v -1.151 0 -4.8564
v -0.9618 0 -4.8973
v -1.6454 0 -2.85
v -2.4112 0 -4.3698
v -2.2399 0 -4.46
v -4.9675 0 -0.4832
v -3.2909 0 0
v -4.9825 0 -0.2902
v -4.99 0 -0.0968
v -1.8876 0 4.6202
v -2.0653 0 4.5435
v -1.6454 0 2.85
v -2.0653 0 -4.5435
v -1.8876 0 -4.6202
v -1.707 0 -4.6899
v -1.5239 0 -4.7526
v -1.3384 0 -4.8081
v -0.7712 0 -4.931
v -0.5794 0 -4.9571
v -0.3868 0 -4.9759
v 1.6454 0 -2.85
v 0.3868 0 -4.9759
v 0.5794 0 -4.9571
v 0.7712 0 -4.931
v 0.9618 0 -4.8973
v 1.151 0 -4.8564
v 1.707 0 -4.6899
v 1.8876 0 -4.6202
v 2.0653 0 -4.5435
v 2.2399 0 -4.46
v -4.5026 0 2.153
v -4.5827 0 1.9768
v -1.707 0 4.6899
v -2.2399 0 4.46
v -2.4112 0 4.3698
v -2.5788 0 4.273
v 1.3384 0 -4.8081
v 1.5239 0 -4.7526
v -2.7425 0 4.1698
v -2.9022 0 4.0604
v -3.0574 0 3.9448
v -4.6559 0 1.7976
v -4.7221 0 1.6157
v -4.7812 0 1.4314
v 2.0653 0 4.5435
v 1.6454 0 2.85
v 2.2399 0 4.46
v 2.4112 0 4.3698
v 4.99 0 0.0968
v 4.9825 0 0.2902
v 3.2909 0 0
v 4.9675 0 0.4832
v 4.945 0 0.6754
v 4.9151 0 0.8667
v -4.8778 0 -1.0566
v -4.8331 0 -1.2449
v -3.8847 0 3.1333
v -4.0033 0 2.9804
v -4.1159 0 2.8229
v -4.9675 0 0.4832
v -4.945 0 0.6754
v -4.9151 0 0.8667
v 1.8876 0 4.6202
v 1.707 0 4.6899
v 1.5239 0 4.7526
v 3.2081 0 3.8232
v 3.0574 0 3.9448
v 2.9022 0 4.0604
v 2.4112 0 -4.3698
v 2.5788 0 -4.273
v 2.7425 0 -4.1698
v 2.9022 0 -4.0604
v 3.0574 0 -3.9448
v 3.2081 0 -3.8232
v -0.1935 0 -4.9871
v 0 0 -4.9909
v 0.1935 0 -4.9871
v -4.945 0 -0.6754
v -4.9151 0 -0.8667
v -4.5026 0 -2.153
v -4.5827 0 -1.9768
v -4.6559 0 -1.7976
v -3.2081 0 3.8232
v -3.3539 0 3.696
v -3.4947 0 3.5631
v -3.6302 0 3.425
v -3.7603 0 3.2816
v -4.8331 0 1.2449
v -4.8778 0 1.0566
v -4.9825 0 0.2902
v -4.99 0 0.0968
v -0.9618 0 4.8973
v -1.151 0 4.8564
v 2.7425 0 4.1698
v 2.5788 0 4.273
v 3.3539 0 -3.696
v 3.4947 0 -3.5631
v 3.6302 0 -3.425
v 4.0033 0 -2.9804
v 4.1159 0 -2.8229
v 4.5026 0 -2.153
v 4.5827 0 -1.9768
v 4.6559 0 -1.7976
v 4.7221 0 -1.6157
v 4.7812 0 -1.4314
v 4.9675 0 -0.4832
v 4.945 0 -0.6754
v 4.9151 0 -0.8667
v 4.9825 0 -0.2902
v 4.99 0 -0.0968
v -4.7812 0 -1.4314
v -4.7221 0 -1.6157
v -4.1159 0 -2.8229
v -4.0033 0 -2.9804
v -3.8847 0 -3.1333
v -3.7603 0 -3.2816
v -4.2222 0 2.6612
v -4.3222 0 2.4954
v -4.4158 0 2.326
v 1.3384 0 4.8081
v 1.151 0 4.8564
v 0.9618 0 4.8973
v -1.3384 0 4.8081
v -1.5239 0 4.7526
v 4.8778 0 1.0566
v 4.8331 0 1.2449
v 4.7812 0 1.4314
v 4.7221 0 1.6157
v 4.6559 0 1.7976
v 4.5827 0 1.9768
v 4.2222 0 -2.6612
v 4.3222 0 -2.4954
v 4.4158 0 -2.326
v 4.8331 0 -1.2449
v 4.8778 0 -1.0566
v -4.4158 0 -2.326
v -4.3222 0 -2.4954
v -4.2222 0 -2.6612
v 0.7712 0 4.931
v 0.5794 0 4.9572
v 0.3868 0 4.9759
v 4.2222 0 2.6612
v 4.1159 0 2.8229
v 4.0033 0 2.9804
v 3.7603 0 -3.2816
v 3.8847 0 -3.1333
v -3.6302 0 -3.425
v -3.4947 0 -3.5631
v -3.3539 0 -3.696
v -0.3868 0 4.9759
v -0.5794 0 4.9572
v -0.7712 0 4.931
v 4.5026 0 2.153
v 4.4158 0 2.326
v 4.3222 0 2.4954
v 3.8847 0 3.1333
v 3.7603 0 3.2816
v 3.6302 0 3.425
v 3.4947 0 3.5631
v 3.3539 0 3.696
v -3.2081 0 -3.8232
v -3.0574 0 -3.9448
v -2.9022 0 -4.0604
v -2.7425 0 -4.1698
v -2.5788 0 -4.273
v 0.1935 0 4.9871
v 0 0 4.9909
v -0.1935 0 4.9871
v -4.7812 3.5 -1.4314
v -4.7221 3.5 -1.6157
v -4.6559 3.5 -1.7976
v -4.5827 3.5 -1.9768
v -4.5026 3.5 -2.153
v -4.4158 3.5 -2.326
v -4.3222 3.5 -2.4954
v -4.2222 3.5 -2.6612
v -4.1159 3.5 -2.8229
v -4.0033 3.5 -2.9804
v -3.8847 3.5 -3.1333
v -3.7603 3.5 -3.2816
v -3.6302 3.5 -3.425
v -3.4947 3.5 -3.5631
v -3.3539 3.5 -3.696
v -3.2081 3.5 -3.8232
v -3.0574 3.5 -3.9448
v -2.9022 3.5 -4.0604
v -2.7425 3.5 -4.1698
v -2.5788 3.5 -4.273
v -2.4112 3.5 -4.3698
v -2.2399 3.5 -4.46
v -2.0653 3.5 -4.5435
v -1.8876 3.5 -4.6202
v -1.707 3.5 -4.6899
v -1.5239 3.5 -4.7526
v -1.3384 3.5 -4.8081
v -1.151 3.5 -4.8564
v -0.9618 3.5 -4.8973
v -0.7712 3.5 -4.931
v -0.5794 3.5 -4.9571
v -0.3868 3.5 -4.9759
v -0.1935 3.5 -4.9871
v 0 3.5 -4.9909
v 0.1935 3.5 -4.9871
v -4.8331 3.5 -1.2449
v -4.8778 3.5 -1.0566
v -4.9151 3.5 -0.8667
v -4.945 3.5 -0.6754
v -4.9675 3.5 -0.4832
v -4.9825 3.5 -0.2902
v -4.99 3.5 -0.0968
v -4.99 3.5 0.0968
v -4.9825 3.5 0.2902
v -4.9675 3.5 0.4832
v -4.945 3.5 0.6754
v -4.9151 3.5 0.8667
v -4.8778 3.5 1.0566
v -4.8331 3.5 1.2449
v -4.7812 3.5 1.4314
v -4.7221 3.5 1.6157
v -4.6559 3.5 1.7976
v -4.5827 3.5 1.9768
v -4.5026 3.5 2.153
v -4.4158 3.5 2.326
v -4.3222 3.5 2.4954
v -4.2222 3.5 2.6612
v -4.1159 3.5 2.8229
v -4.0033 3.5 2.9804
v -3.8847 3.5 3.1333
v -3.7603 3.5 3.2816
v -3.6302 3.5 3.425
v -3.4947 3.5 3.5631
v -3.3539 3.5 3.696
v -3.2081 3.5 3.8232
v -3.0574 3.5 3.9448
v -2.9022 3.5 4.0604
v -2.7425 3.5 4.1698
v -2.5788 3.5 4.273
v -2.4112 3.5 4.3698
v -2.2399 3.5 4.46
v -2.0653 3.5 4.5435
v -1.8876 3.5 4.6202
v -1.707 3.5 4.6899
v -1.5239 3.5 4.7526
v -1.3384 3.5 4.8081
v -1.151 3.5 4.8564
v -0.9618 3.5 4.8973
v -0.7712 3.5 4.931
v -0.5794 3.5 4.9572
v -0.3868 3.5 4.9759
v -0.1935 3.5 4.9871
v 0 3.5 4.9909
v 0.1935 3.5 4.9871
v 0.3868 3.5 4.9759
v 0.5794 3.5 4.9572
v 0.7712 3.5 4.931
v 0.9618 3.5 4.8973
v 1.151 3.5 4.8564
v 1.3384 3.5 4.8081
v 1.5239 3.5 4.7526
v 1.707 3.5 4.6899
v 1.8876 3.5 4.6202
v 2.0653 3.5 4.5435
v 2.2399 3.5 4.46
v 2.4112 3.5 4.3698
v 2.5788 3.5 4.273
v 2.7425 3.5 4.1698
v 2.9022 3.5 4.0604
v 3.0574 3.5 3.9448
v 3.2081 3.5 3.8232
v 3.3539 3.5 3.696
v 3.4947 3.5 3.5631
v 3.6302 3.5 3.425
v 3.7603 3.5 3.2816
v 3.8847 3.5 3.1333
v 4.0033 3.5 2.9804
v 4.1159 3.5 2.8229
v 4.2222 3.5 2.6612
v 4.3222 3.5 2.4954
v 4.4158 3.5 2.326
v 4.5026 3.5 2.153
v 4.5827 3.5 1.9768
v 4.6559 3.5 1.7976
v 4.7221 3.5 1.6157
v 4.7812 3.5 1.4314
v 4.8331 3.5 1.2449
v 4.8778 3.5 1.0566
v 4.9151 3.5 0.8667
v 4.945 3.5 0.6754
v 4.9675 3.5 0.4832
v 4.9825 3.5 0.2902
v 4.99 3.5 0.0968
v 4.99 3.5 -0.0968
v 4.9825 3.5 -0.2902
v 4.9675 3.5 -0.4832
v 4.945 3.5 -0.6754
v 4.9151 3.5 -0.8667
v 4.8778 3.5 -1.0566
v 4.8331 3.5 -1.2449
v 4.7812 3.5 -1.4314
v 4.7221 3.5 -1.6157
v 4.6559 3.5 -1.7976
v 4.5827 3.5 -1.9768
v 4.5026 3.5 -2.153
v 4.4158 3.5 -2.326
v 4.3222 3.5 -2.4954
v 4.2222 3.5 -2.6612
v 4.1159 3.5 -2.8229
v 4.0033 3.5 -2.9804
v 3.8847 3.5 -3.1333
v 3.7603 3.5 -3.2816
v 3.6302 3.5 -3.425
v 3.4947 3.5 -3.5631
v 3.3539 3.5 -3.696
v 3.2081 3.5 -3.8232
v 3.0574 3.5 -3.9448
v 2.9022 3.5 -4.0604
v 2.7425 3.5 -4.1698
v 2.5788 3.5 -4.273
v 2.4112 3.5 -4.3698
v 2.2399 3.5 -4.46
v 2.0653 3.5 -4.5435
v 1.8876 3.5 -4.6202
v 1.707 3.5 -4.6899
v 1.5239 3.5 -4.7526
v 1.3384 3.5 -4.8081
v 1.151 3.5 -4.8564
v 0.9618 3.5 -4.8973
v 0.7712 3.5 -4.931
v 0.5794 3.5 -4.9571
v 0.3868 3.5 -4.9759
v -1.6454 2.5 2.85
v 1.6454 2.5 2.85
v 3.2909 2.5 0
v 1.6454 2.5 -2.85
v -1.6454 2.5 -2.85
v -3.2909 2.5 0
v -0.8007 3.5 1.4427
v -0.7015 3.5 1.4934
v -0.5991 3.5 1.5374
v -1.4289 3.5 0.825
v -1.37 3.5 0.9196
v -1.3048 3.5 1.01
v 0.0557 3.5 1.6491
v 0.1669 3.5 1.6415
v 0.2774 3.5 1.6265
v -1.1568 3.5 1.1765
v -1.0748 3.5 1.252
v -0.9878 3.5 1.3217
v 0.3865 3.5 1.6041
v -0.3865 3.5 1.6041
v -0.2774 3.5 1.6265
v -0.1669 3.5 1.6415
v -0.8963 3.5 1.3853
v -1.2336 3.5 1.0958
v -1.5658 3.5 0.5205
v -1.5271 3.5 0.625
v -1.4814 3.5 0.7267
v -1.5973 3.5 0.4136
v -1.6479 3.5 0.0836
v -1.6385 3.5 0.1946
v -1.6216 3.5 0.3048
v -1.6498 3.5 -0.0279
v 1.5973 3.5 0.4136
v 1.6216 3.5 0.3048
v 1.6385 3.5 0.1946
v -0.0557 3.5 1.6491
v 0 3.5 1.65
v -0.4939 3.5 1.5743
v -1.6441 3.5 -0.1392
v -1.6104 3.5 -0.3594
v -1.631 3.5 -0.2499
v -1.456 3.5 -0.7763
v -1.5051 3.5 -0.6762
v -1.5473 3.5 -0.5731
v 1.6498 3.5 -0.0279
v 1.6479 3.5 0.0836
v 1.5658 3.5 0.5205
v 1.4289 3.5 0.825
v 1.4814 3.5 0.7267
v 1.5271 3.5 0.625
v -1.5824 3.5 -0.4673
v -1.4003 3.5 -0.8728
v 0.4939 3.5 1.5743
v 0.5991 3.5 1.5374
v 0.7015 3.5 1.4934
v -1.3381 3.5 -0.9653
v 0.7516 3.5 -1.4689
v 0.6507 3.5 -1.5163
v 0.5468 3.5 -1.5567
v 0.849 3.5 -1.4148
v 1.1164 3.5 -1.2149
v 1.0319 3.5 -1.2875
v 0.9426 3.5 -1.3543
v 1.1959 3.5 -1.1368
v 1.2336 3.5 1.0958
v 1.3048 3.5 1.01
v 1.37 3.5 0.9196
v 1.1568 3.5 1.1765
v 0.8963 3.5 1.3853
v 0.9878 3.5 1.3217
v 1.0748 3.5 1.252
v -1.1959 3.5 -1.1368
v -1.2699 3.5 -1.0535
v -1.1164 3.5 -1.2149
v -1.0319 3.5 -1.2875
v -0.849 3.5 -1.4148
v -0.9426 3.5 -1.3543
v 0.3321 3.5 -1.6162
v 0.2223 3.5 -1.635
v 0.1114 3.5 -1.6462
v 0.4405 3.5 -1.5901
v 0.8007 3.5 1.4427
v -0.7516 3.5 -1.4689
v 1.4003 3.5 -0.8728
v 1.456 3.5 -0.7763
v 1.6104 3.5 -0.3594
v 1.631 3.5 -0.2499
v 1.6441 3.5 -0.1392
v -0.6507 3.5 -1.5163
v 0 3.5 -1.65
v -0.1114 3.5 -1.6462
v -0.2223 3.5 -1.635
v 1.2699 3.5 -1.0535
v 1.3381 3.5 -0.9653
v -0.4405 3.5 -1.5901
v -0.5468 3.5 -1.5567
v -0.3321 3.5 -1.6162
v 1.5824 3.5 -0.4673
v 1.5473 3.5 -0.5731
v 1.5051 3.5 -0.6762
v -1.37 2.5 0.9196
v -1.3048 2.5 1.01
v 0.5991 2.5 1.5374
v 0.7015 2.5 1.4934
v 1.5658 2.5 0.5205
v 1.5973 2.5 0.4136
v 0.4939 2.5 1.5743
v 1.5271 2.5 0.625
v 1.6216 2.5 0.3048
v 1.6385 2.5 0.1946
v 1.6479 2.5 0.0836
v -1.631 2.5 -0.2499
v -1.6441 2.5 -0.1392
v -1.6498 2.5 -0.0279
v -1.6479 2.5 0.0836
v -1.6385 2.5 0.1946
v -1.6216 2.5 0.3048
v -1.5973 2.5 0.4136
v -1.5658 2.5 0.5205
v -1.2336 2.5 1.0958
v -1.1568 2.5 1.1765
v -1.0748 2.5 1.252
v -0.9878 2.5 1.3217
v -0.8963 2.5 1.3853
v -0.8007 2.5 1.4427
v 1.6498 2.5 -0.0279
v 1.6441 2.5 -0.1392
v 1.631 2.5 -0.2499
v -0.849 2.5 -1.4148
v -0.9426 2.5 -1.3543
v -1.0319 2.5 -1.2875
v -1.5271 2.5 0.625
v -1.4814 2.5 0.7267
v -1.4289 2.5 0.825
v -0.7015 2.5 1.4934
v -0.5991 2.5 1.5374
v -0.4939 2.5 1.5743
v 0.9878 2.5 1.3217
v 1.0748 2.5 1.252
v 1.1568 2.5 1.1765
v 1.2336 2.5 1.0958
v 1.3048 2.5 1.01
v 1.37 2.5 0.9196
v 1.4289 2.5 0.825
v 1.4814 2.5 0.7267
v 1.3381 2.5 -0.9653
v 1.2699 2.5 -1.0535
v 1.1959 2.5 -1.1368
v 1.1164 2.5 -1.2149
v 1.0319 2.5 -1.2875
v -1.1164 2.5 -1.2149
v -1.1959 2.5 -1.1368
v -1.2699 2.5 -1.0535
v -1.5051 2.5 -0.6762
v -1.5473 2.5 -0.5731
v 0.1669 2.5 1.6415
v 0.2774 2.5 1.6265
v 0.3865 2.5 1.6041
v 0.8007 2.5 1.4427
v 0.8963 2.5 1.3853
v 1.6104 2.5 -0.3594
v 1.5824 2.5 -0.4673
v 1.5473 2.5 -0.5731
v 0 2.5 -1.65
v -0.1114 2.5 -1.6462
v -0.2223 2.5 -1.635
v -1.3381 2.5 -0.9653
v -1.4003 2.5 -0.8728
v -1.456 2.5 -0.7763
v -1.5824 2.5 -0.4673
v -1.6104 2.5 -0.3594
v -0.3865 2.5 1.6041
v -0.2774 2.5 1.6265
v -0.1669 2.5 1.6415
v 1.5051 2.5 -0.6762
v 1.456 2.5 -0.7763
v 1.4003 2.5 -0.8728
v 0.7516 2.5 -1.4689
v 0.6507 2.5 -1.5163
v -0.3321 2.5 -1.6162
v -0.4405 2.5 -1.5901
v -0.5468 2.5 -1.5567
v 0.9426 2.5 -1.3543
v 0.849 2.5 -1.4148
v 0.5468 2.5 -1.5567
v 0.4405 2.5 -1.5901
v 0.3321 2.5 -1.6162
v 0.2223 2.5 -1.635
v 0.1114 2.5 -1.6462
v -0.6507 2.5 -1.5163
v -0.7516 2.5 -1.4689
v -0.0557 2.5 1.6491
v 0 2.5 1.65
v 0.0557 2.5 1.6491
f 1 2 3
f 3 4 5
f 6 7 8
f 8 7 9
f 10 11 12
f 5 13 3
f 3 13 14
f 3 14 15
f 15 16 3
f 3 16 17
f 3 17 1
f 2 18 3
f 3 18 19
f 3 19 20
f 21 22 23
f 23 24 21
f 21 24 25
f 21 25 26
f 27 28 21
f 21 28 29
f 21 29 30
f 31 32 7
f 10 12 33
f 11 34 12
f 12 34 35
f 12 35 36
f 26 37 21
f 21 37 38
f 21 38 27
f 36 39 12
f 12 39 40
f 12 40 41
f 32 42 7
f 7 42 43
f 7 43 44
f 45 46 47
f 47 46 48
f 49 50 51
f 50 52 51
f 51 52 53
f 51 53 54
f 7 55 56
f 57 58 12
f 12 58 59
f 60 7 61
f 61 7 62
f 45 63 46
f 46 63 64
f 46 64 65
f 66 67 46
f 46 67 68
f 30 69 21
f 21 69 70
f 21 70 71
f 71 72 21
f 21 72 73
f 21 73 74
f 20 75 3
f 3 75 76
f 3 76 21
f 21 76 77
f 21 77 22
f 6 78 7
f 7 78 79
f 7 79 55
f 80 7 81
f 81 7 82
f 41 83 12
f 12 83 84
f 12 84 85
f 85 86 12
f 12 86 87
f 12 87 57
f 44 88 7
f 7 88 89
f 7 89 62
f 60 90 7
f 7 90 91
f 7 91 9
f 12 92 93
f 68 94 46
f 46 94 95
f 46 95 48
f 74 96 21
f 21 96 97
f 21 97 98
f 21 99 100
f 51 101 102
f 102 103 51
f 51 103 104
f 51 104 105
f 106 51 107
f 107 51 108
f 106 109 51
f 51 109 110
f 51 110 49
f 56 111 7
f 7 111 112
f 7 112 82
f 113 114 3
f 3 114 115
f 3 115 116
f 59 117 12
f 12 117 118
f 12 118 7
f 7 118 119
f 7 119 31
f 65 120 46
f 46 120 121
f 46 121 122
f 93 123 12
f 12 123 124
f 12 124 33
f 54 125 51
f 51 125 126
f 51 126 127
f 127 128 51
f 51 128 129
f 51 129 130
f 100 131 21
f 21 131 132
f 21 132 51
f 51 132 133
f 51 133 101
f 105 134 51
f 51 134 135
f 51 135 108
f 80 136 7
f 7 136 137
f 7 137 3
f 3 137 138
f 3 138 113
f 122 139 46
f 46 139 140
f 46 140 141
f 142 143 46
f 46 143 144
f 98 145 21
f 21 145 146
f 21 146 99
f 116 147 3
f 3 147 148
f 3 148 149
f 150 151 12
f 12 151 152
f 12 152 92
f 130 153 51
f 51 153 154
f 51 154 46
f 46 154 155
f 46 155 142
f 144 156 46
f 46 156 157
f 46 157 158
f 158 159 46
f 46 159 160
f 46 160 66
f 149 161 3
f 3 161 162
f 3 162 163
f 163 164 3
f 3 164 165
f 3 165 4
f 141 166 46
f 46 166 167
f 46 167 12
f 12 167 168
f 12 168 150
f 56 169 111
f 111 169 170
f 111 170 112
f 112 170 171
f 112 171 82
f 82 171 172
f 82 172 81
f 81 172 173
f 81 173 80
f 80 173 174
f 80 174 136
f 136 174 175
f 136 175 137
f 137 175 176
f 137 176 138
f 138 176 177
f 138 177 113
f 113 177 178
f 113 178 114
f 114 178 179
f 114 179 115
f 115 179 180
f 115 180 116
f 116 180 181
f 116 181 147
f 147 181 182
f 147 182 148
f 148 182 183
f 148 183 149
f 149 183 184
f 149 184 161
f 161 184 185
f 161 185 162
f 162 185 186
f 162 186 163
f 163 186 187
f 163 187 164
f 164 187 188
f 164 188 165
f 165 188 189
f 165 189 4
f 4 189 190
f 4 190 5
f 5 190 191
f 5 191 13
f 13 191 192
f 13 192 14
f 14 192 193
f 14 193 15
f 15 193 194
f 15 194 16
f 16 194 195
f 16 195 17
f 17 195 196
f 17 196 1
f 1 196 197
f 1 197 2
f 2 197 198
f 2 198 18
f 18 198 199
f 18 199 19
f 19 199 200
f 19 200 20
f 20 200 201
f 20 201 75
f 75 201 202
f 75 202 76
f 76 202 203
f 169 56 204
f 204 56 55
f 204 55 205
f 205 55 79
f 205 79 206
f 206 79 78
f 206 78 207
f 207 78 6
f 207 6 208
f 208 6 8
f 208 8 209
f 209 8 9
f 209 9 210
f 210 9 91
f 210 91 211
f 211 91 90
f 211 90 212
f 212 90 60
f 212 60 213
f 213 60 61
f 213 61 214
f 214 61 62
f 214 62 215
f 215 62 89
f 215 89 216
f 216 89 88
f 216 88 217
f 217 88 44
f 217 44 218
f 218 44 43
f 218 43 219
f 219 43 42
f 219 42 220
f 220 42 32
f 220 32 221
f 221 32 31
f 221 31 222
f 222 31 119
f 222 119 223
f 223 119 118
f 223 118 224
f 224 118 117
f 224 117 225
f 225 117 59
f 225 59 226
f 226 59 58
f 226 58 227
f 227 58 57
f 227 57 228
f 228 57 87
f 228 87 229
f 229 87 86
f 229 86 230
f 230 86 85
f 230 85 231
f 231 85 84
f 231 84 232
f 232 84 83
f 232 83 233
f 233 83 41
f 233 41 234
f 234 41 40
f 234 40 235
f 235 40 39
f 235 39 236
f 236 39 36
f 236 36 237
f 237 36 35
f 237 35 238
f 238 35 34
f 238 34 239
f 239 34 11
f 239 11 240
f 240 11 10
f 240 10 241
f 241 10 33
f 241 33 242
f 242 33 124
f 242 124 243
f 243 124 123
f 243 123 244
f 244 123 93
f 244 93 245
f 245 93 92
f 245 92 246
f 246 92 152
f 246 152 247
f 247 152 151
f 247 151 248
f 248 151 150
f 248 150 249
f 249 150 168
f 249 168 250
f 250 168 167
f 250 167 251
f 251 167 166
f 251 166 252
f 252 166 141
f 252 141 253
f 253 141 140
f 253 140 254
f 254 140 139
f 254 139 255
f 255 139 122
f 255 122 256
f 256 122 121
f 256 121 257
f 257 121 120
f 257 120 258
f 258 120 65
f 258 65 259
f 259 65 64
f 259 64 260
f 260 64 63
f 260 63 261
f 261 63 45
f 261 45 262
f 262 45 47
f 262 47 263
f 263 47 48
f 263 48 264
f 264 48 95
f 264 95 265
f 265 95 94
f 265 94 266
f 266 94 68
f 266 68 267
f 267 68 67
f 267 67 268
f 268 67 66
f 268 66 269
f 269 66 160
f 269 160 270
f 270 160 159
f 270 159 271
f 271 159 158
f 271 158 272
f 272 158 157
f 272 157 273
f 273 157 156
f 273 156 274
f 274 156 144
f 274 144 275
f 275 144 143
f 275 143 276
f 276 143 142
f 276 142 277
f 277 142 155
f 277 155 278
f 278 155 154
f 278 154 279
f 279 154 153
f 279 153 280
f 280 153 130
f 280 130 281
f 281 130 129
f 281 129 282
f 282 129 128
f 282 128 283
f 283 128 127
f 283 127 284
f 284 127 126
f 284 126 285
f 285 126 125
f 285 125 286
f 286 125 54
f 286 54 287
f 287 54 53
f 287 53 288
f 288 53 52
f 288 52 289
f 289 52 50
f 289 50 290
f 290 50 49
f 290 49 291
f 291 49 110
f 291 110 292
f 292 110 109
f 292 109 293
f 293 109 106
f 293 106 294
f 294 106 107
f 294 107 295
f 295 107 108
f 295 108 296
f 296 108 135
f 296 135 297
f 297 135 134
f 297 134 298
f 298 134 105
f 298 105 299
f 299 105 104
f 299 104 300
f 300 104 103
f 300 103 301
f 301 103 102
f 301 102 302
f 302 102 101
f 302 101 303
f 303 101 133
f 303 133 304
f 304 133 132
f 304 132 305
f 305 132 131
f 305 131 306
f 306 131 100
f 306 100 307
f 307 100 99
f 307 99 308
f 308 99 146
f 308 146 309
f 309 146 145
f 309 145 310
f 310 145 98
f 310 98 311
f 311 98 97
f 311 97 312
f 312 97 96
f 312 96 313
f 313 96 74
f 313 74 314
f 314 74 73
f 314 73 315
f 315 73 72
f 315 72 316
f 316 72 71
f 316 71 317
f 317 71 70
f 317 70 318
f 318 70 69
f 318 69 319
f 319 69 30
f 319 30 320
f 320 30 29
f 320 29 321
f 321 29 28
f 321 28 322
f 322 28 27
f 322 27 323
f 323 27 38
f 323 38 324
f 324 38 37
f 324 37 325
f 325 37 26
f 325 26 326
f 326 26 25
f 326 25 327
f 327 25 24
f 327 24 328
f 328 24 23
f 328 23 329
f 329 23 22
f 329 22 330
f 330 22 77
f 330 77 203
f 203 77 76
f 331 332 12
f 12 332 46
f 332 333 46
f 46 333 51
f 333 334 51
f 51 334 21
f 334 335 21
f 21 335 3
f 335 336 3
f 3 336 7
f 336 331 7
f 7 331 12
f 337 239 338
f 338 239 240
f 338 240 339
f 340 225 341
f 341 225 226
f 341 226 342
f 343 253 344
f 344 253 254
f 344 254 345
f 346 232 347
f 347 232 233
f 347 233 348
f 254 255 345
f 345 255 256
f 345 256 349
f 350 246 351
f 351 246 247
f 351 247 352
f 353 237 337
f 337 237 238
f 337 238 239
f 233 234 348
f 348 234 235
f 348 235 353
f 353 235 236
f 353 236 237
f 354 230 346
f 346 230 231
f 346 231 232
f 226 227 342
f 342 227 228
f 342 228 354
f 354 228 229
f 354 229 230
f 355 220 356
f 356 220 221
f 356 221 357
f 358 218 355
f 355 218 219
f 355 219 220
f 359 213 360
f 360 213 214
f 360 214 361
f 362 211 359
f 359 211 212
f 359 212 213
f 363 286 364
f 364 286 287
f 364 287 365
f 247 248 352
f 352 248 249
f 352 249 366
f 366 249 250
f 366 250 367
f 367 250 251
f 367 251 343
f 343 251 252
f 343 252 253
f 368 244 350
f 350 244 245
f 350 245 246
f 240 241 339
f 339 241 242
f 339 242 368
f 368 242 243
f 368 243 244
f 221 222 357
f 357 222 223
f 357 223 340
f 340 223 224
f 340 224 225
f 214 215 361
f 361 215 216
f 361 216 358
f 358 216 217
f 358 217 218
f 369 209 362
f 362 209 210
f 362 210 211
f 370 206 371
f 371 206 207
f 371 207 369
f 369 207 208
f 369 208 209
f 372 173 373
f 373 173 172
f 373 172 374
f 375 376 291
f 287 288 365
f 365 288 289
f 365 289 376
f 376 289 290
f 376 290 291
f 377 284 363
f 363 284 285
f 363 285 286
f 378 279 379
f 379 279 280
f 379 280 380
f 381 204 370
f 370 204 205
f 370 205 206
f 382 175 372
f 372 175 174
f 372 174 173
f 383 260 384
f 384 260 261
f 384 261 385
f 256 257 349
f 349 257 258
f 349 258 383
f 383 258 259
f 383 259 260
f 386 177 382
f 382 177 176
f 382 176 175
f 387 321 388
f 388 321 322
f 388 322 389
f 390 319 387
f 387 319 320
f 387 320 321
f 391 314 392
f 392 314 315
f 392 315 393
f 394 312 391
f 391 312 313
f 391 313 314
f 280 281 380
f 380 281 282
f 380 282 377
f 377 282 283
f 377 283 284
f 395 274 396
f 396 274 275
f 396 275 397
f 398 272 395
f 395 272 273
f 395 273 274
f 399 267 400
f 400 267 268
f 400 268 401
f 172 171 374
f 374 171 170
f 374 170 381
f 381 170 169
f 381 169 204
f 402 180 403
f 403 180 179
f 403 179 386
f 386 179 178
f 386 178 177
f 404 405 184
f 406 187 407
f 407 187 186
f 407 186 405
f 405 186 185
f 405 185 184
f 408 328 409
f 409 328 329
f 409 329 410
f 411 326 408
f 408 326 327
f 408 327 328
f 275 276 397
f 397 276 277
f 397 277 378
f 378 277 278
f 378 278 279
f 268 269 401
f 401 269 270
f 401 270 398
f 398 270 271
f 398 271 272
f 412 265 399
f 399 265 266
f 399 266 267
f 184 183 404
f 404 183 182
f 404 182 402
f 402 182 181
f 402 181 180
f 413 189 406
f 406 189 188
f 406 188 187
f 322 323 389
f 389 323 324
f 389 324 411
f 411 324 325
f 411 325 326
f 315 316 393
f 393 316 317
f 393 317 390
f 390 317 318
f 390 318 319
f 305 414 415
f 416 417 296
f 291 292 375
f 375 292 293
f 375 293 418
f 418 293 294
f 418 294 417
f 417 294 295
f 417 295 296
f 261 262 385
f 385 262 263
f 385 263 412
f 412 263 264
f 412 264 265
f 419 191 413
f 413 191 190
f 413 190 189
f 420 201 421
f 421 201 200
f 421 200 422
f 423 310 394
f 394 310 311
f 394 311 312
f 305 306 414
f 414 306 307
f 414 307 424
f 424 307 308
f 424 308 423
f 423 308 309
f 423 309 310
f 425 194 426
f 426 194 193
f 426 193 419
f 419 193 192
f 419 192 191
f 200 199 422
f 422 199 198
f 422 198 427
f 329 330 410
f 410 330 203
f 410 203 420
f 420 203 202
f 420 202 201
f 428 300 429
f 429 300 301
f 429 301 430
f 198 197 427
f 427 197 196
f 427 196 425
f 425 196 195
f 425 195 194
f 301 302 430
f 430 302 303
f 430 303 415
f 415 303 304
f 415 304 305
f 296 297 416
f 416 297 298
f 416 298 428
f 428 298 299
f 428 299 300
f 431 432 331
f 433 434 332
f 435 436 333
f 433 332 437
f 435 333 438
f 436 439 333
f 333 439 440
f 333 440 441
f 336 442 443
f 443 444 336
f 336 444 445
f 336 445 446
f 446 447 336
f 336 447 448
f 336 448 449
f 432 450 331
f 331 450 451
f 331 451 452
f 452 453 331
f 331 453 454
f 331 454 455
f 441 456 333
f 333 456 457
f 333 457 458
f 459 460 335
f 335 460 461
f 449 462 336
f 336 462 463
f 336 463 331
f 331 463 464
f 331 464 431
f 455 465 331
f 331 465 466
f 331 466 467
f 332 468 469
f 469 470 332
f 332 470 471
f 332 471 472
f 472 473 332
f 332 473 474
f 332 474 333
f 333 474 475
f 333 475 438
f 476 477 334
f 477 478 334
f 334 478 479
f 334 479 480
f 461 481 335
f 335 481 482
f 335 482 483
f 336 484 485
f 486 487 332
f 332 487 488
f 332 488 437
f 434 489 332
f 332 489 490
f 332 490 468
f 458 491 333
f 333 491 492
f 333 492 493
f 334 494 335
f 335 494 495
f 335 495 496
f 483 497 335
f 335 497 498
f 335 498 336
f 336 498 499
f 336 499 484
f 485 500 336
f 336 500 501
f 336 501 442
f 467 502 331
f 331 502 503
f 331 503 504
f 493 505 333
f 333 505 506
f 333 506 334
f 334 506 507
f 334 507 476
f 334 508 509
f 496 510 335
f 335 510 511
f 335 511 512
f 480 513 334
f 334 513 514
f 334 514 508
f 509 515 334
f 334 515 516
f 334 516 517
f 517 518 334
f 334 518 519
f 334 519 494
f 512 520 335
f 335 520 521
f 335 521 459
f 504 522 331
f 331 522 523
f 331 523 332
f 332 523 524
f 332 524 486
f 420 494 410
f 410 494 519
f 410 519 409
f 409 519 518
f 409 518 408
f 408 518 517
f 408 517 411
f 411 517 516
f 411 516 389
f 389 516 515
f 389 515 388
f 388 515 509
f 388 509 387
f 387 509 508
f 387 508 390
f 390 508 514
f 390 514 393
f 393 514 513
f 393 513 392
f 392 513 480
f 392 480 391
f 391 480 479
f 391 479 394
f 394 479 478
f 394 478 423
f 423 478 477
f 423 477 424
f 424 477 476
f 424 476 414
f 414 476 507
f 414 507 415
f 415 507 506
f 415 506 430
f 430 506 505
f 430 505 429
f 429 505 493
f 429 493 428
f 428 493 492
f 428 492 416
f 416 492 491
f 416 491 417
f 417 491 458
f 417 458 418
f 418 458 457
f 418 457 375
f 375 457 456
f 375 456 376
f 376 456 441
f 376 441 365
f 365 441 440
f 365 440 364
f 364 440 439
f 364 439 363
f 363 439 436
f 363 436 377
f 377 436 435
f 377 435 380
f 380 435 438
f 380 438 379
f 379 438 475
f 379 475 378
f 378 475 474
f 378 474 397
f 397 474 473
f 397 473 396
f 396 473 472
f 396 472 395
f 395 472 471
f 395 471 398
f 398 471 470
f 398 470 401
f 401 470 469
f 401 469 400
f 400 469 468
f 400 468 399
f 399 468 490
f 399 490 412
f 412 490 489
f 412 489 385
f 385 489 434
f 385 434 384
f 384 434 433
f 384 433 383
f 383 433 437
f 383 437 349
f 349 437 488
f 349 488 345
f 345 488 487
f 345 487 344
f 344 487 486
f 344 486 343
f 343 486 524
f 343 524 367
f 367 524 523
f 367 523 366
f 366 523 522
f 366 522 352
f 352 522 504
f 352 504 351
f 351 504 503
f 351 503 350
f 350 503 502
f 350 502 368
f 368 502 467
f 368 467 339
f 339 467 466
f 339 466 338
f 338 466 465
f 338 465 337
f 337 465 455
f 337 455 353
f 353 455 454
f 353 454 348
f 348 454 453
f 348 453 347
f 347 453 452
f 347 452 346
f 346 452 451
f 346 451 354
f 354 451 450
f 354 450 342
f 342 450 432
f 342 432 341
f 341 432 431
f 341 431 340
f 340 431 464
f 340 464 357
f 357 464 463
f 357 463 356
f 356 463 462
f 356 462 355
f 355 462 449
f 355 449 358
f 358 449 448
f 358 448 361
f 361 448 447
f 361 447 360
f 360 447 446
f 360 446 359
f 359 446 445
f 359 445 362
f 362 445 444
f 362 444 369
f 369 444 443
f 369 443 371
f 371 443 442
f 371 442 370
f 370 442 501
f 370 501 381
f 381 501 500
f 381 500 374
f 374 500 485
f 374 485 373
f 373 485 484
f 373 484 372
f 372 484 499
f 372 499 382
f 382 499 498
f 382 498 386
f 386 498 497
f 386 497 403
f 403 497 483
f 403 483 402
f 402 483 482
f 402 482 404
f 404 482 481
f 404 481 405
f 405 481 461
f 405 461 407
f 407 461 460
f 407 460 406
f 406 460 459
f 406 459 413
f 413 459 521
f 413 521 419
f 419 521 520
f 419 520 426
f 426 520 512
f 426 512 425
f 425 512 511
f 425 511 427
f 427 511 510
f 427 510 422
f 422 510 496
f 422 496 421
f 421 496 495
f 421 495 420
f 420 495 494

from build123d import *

# Parameters (mm, degrees)
SKETCH_1_R      = 4.990896534
EXTRUDE_1_DEPTH = 2.5
SKETCH_2_R      = 4.990896534
SKETCH_2_R_2    = 1.65
EXTRUDE_2_DEPTH = 1


with BuildPart() as part:
    # 草图1 → 凸台-拉伸1 (new body)
    with BuildSketch(Plane(origin=(0, 0, 0), x_dir=(1, 0, 0), z_dir=(0, 1, 0))):
        with Locations(Location((0, 0, 0), (0, 0, 270))):
            Circle(SKETCH_1_R)
        Polygon((1.645448267, -2.85), (3.290896534, 0), (1.645448267, 2.85), (-1.645448267, 2.85), (-3.290896534, 0), (-1.645448267, -2.85), align=None, mode=Mode.SUBTRACT)
    extrude(amount=EXTRUDE_1_DEPTH)

    # 草图2 → 凸台-拉伸2 (add)
    with BuildSketch(Plane(origin=(0, 2.5, 0), x_dir=(1, 0, 0), z_dir=(0, 1, 0))):
        with Locations(Location((0, 0, 0), (0, 0, 270))):
            Circle(SKETCH_2_R)
        with Locations(Location((0, 0, 0), (0, 0, 270))):
            Circle(SKETCH_2_R_2, mode=Mode.SUBTRACT)
    extrude(amount=EXTRUDE_2_DEPTH)


solid = part.part
